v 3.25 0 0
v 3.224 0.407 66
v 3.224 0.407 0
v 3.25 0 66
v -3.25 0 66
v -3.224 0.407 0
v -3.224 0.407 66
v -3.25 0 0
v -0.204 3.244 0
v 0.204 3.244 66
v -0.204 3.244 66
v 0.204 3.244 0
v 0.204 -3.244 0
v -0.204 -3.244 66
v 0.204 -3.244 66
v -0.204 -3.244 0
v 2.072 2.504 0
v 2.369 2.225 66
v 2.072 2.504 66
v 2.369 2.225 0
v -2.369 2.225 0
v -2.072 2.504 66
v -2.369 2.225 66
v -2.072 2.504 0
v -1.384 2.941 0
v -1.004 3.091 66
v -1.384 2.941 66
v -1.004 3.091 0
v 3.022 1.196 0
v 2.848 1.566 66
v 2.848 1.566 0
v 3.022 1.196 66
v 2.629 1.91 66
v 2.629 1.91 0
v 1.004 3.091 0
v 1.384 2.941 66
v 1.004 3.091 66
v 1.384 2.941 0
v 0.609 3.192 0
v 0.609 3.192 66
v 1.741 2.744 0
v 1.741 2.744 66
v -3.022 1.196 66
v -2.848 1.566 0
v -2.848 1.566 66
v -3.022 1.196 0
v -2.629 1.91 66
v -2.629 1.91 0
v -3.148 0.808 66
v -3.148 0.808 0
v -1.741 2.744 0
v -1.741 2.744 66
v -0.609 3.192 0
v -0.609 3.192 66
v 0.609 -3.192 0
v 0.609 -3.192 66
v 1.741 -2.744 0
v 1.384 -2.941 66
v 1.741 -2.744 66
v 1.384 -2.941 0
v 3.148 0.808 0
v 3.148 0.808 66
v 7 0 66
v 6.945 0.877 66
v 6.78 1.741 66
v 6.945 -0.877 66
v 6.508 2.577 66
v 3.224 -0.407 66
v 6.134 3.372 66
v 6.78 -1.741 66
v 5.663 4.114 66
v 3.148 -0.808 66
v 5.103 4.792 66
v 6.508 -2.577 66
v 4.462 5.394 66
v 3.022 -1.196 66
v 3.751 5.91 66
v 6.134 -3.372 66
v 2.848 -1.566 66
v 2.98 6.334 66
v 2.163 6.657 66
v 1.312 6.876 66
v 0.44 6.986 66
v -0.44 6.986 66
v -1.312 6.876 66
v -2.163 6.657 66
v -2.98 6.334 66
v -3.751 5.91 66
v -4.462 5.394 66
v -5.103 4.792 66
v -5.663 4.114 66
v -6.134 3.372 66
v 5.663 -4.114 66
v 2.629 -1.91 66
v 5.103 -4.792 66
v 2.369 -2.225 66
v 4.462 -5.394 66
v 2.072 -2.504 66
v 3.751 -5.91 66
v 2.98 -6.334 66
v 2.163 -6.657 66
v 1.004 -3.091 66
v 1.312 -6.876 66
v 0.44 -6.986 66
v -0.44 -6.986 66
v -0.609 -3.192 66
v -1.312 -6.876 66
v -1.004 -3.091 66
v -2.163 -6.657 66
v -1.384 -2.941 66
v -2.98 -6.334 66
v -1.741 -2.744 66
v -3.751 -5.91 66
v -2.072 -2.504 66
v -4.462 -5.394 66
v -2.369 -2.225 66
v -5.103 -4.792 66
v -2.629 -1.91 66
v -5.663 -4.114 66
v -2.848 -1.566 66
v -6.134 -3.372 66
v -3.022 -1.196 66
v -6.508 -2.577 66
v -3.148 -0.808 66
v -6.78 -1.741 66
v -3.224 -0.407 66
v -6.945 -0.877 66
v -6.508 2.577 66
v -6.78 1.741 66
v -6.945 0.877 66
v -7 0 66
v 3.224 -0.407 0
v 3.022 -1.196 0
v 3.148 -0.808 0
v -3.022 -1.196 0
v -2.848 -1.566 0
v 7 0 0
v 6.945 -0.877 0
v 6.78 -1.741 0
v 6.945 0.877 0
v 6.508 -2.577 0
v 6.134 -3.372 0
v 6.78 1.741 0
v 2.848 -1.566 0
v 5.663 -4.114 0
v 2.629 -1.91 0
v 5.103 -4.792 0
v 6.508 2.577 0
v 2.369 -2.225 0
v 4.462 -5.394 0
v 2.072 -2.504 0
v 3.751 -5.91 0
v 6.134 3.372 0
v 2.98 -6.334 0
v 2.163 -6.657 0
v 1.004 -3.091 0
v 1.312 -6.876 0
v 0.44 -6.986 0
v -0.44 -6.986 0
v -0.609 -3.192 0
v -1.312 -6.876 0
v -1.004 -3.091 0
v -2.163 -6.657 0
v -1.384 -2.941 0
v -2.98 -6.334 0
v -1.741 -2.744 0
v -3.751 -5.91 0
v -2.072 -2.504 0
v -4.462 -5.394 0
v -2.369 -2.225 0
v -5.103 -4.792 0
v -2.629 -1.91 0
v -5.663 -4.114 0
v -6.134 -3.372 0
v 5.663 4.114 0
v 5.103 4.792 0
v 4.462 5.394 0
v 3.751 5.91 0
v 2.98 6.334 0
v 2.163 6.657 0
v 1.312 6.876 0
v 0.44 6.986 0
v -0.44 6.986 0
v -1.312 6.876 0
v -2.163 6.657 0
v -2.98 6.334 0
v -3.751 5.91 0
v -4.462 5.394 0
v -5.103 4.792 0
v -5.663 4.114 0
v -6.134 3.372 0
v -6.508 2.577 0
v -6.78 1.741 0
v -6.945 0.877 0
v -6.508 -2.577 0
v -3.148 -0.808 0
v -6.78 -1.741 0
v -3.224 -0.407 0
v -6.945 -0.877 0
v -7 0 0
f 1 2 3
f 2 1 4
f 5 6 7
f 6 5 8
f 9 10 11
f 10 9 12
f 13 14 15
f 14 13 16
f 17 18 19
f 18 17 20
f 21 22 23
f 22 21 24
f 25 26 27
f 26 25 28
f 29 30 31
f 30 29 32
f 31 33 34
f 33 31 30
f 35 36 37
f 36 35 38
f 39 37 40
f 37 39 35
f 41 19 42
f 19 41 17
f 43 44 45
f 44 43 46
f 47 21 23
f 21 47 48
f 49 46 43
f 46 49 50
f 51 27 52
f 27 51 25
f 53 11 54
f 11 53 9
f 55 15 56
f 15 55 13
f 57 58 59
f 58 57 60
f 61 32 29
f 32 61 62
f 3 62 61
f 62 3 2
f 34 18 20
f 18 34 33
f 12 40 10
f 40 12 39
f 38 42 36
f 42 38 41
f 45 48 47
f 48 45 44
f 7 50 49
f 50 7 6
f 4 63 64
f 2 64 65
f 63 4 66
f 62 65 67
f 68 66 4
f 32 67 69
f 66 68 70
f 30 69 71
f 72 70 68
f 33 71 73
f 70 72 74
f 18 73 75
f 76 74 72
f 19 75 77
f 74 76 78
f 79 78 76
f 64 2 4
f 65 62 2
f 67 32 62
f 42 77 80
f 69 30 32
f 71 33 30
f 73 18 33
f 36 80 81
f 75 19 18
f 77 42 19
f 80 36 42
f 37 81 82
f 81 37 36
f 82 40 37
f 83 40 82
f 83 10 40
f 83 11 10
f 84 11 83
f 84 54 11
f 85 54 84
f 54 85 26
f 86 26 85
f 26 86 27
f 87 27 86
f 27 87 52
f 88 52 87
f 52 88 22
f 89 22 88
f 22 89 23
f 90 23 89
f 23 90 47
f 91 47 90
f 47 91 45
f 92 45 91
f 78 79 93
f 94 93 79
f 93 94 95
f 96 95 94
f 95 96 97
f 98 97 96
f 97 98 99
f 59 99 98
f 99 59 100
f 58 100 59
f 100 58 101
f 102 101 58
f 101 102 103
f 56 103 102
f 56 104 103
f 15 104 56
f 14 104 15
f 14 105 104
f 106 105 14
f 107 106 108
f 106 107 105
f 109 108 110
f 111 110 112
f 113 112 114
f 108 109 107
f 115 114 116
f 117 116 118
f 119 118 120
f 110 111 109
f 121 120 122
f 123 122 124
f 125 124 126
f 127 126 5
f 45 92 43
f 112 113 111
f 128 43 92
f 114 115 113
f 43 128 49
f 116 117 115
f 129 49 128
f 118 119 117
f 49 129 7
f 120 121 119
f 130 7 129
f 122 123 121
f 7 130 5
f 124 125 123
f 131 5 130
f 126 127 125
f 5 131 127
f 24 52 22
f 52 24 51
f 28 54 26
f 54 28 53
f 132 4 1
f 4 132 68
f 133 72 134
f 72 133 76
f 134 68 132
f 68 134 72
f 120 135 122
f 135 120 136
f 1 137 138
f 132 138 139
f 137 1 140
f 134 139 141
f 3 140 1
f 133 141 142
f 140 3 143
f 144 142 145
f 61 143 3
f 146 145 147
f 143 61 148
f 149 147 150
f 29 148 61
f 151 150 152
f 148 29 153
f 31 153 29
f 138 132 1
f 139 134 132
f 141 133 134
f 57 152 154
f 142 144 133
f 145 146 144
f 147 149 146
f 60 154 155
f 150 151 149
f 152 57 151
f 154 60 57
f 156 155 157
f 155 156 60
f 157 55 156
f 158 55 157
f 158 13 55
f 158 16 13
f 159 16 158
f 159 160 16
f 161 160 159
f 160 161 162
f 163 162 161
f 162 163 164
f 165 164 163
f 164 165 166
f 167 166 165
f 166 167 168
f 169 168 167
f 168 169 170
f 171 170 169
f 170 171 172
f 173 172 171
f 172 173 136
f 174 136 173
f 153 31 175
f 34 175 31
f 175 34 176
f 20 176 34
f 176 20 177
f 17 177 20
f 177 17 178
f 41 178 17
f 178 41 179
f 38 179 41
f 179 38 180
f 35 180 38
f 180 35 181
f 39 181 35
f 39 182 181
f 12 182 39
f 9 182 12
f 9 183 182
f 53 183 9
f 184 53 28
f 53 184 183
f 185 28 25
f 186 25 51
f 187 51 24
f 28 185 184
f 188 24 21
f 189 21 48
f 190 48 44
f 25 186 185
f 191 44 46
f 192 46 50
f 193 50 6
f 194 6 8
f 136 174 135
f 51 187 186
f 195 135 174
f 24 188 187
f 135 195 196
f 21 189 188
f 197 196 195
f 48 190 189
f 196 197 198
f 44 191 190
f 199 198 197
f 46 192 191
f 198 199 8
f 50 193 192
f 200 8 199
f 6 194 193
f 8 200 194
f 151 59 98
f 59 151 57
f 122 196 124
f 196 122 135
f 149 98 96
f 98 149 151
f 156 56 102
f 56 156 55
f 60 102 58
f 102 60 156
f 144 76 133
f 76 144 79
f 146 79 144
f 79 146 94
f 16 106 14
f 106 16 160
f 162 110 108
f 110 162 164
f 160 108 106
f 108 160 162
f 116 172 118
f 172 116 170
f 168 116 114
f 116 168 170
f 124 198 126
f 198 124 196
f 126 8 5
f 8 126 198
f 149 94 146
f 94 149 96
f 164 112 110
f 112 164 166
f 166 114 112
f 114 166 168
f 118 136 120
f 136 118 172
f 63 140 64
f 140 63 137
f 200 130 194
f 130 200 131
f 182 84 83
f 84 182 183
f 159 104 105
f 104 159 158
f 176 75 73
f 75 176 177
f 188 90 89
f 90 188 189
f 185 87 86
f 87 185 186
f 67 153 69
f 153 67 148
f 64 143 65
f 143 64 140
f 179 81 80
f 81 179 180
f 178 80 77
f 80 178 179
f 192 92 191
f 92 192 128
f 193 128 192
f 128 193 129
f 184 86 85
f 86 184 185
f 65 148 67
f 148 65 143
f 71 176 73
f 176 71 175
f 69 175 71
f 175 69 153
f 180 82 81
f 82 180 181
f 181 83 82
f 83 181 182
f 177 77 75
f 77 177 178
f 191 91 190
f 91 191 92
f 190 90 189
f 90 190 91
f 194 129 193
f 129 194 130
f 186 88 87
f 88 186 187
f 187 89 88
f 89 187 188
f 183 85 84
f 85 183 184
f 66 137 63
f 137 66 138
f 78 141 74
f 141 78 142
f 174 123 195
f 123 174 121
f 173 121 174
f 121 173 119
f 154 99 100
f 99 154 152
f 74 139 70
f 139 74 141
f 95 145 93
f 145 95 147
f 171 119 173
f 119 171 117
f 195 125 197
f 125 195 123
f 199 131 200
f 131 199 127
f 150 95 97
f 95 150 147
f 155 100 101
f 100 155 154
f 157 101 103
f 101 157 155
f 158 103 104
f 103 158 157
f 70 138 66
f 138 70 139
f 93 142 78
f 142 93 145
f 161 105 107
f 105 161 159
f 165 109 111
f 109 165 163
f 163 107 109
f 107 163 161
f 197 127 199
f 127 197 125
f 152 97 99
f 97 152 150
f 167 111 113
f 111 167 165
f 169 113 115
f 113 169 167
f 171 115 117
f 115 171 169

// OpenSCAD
$fn = 50;


difference() {
	union() {
		cylinder(h = 66, r = 7.0000000000);
	}
	union() {
		translate(v = [0, 0, -100]) {
			cylinder(h = 200, r = 3.2500000000);
		}
	}
}
